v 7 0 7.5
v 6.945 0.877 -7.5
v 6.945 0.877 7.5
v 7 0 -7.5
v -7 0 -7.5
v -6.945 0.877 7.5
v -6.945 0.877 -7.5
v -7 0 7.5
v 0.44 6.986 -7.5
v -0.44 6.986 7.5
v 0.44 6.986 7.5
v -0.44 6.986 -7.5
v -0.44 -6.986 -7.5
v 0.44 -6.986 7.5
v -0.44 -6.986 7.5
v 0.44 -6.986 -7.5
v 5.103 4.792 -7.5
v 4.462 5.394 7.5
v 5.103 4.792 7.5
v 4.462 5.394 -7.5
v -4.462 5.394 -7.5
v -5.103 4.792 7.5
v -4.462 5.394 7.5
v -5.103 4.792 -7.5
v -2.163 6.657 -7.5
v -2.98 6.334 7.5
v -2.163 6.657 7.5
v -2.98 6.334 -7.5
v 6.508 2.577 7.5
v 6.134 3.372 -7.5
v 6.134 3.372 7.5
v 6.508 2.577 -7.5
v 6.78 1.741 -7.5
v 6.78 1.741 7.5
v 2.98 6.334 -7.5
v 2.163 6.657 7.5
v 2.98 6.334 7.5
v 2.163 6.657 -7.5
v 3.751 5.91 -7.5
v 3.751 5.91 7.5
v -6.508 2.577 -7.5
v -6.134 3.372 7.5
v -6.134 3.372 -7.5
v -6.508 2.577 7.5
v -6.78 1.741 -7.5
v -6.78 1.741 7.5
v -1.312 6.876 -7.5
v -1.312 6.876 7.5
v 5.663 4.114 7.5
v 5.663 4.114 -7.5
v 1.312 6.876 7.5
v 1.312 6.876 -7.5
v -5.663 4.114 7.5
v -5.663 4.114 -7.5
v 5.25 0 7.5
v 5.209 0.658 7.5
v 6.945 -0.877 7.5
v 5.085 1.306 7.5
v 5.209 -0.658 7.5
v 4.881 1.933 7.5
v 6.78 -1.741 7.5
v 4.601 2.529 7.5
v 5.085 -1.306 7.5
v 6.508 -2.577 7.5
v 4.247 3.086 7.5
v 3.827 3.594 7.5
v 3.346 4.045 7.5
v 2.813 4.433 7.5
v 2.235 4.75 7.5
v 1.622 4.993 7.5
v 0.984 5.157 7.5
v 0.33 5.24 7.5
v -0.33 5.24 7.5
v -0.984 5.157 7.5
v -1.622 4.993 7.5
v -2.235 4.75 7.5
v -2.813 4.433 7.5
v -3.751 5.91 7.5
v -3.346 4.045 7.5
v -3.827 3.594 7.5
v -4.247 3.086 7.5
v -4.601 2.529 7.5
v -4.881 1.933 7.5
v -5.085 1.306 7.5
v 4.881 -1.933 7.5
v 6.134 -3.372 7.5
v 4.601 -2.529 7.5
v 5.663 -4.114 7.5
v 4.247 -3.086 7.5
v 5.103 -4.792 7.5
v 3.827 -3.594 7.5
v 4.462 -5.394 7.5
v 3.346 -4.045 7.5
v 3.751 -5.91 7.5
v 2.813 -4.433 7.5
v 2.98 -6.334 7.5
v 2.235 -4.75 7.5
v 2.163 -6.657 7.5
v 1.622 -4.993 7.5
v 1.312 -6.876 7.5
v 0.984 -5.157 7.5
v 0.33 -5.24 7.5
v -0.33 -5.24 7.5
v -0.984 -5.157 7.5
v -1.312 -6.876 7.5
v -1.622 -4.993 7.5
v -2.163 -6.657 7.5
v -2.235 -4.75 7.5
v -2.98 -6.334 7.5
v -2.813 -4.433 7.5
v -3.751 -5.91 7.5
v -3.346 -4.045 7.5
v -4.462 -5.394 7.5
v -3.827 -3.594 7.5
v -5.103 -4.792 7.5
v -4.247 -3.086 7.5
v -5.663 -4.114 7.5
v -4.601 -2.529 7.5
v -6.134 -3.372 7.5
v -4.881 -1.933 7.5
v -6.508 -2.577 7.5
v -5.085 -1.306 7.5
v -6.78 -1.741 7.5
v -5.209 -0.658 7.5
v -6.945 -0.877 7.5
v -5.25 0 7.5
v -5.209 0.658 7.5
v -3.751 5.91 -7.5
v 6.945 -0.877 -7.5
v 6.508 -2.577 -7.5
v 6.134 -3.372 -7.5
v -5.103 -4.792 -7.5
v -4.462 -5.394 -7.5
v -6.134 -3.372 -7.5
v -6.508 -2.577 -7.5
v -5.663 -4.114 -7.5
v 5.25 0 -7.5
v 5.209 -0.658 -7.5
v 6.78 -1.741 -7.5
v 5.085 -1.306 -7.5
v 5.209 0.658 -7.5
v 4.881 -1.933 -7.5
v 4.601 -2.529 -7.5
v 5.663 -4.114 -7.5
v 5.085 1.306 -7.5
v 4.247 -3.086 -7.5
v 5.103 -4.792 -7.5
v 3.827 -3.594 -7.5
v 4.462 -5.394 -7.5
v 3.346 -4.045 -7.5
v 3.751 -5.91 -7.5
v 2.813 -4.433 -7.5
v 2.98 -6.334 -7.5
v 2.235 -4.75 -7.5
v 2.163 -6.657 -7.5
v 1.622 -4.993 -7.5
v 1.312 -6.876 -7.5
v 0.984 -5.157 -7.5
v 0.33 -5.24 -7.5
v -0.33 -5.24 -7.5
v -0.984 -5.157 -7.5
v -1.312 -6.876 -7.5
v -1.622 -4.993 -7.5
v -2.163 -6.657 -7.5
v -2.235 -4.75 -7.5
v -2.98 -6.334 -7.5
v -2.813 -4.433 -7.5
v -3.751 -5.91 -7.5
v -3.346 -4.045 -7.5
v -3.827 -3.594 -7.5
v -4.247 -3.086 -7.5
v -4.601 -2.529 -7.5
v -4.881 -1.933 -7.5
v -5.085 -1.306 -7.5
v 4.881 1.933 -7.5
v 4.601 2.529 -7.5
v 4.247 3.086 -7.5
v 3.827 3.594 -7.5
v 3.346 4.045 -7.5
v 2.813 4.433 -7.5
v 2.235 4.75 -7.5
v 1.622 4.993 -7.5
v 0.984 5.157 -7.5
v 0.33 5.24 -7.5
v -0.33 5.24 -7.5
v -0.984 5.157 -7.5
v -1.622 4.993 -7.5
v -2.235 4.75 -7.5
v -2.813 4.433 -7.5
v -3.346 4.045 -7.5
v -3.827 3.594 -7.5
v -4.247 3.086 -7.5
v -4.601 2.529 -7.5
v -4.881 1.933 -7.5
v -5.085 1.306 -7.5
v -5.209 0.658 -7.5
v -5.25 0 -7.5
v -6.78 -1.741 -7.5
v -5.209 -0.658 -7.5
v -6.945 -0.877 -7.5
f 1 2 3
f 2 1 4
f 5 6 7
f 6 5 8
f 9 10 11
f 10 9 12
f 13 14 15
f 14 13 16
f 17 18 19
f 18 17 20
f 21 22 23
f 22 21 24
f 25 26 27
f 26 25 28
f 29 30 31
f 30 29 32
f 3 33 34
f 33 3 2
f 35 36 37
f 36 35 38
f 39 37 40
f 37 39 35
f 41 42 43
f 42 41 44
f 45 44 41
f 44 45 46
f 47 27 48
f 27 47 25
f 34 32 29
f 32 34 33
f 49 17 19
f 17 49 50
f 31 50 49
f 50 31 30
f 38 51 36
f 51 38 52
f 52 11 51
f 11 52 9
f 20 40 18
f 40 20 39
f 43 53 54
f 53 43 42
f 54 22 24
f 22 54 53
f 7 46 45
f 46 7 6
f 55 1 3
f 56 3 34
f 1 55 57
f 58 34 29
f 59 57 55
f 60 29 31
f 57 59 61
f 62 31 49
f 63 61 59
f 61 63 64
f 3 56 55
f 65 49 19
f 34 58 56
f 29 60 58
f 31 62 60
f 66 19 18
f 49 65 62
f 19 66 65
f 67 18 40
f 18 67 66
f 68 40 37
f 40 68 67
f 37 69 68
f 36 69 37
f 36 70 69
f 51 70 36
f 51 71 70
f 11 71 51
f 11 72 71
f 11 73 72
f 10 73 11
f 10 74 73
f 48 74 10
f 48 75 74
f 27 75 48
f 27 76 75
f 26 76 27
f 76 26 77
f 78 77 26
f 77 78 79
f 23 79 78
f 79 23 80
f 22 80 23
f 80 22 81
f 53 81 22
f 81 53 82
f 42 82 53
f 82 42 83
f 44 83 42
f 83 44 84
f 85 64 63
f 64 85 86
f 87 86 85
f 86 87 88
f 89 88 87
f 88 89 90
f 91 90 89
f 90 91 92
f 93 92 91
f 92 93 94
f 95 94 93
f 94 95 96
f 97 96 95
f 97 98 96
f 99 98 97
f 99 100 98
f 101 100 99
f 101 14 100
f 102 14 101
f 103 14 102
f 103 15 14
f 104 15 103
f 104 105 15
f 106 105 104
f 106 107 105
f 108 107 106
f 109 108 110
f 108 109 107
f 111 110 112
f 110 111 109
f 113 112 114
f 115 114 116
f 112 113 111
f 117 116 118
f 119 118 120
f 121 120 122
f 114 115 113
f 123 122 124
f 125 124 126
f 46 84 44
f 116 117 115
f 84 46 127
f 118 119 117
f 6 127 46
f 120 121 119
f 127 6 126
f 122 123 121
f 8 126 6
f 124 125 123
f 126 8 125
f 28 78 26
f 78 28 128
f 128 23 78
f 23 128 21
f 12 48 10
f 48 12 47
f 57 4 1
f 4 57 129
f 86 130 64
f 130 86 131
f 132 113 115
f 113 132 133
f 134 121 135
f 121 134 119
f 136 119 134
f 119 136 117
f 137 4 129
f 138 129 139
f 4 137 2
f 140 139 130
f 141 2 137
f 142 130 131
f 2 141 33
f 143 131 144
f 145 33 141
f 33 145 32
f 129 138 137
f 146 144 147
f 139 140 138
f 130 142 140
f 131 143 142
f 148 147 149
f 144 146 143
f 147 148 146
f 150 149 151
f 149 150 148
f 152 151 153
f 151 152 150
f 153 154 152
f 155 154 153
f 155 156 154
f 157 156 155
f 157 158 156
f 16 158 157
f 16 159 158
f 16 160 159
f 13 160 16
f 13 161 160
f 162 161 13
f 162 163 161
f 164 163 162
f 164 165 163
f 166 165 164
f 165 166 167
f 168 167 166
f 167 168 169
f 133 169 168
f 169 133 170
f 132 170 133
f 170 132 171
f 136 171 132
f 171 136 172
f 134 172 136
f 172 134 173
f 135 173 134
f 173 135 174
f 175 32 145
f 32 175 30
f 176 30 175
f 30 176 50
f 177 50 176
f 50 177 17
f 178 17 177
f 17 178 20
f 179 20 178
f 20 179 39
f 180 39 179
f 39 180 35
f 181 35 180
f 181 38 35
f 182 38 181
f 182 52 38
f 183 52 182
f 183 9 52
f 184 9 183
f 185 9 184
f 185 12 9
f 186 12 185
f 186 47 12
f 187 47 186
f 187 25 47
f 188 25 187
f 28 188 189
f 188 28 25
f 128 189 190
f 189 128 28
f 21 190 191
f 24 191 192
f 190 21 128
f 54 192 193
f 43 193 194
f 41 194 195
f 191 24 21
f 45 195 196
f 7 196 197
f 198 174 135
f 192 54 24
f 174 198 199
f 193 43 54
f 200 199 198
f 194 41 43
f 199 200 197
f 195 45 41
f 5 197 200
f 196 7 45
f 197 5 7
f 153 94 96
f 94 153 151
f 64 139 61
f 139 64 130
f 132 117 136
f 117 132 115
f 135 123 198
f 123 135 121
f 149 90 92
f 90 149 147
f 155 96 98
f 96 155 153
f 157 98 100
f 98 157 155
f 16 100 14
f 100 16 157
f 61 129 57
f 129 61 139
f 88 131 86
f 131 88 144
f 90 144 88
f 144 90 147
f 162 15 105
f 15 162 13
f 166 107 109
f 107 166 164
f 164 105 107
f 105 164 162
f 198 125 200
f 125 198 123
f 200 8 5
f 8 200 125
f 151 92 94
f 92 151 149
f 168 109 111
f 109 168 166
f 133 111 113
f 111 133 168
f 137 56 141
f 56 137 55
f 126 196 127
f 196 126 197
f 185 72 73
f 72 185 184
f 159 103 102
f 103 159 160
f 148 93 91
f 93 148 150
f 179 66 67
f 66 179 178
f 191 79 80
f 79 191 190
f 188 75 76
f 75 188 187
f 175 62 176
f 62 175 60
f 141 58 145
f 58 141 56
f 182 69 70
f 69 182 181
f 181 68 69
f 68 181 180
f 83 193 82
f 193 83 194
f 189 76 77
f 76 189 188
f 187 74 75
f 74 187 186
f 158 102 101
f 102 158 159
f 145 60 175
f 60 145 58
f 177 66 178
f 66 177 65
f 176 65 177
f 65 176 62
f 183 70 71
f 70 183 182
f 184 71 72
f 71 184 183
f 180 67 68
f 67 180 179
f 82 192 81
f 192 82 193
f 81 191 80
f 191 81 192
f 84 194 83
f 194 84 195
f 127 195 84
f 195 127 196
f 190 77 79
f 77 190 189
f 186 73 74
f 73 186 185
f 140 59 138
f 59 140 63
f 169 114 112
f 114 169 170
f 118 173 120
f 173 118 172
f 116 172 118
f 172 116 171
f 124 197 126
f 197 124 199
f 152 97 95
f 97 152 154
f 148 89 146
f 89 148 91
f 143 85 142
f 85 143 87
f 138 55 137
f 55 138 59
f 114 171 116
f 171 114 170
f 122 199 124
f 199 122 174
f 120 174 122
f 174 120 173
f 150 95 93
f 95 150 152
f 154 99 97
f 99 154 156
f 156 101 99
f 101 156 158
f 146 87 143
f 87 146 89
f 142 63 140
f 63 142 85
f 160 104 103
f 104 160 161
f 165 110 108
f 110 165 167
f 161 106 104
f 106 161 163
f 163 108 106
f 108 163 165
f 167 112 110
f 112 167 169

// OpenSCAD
$fn = 50;


difference() {
	union() {
		translate(v = [0, 0, -7.5000000000]) {
			cylinder(h = 15, r = 7.0000000000);
		}
	}
	union() {
		translate(v = [0, 0, -100.0000000000]) {
			cylinder(h = 200, r = 5.2500000000);
		}
	}
}
